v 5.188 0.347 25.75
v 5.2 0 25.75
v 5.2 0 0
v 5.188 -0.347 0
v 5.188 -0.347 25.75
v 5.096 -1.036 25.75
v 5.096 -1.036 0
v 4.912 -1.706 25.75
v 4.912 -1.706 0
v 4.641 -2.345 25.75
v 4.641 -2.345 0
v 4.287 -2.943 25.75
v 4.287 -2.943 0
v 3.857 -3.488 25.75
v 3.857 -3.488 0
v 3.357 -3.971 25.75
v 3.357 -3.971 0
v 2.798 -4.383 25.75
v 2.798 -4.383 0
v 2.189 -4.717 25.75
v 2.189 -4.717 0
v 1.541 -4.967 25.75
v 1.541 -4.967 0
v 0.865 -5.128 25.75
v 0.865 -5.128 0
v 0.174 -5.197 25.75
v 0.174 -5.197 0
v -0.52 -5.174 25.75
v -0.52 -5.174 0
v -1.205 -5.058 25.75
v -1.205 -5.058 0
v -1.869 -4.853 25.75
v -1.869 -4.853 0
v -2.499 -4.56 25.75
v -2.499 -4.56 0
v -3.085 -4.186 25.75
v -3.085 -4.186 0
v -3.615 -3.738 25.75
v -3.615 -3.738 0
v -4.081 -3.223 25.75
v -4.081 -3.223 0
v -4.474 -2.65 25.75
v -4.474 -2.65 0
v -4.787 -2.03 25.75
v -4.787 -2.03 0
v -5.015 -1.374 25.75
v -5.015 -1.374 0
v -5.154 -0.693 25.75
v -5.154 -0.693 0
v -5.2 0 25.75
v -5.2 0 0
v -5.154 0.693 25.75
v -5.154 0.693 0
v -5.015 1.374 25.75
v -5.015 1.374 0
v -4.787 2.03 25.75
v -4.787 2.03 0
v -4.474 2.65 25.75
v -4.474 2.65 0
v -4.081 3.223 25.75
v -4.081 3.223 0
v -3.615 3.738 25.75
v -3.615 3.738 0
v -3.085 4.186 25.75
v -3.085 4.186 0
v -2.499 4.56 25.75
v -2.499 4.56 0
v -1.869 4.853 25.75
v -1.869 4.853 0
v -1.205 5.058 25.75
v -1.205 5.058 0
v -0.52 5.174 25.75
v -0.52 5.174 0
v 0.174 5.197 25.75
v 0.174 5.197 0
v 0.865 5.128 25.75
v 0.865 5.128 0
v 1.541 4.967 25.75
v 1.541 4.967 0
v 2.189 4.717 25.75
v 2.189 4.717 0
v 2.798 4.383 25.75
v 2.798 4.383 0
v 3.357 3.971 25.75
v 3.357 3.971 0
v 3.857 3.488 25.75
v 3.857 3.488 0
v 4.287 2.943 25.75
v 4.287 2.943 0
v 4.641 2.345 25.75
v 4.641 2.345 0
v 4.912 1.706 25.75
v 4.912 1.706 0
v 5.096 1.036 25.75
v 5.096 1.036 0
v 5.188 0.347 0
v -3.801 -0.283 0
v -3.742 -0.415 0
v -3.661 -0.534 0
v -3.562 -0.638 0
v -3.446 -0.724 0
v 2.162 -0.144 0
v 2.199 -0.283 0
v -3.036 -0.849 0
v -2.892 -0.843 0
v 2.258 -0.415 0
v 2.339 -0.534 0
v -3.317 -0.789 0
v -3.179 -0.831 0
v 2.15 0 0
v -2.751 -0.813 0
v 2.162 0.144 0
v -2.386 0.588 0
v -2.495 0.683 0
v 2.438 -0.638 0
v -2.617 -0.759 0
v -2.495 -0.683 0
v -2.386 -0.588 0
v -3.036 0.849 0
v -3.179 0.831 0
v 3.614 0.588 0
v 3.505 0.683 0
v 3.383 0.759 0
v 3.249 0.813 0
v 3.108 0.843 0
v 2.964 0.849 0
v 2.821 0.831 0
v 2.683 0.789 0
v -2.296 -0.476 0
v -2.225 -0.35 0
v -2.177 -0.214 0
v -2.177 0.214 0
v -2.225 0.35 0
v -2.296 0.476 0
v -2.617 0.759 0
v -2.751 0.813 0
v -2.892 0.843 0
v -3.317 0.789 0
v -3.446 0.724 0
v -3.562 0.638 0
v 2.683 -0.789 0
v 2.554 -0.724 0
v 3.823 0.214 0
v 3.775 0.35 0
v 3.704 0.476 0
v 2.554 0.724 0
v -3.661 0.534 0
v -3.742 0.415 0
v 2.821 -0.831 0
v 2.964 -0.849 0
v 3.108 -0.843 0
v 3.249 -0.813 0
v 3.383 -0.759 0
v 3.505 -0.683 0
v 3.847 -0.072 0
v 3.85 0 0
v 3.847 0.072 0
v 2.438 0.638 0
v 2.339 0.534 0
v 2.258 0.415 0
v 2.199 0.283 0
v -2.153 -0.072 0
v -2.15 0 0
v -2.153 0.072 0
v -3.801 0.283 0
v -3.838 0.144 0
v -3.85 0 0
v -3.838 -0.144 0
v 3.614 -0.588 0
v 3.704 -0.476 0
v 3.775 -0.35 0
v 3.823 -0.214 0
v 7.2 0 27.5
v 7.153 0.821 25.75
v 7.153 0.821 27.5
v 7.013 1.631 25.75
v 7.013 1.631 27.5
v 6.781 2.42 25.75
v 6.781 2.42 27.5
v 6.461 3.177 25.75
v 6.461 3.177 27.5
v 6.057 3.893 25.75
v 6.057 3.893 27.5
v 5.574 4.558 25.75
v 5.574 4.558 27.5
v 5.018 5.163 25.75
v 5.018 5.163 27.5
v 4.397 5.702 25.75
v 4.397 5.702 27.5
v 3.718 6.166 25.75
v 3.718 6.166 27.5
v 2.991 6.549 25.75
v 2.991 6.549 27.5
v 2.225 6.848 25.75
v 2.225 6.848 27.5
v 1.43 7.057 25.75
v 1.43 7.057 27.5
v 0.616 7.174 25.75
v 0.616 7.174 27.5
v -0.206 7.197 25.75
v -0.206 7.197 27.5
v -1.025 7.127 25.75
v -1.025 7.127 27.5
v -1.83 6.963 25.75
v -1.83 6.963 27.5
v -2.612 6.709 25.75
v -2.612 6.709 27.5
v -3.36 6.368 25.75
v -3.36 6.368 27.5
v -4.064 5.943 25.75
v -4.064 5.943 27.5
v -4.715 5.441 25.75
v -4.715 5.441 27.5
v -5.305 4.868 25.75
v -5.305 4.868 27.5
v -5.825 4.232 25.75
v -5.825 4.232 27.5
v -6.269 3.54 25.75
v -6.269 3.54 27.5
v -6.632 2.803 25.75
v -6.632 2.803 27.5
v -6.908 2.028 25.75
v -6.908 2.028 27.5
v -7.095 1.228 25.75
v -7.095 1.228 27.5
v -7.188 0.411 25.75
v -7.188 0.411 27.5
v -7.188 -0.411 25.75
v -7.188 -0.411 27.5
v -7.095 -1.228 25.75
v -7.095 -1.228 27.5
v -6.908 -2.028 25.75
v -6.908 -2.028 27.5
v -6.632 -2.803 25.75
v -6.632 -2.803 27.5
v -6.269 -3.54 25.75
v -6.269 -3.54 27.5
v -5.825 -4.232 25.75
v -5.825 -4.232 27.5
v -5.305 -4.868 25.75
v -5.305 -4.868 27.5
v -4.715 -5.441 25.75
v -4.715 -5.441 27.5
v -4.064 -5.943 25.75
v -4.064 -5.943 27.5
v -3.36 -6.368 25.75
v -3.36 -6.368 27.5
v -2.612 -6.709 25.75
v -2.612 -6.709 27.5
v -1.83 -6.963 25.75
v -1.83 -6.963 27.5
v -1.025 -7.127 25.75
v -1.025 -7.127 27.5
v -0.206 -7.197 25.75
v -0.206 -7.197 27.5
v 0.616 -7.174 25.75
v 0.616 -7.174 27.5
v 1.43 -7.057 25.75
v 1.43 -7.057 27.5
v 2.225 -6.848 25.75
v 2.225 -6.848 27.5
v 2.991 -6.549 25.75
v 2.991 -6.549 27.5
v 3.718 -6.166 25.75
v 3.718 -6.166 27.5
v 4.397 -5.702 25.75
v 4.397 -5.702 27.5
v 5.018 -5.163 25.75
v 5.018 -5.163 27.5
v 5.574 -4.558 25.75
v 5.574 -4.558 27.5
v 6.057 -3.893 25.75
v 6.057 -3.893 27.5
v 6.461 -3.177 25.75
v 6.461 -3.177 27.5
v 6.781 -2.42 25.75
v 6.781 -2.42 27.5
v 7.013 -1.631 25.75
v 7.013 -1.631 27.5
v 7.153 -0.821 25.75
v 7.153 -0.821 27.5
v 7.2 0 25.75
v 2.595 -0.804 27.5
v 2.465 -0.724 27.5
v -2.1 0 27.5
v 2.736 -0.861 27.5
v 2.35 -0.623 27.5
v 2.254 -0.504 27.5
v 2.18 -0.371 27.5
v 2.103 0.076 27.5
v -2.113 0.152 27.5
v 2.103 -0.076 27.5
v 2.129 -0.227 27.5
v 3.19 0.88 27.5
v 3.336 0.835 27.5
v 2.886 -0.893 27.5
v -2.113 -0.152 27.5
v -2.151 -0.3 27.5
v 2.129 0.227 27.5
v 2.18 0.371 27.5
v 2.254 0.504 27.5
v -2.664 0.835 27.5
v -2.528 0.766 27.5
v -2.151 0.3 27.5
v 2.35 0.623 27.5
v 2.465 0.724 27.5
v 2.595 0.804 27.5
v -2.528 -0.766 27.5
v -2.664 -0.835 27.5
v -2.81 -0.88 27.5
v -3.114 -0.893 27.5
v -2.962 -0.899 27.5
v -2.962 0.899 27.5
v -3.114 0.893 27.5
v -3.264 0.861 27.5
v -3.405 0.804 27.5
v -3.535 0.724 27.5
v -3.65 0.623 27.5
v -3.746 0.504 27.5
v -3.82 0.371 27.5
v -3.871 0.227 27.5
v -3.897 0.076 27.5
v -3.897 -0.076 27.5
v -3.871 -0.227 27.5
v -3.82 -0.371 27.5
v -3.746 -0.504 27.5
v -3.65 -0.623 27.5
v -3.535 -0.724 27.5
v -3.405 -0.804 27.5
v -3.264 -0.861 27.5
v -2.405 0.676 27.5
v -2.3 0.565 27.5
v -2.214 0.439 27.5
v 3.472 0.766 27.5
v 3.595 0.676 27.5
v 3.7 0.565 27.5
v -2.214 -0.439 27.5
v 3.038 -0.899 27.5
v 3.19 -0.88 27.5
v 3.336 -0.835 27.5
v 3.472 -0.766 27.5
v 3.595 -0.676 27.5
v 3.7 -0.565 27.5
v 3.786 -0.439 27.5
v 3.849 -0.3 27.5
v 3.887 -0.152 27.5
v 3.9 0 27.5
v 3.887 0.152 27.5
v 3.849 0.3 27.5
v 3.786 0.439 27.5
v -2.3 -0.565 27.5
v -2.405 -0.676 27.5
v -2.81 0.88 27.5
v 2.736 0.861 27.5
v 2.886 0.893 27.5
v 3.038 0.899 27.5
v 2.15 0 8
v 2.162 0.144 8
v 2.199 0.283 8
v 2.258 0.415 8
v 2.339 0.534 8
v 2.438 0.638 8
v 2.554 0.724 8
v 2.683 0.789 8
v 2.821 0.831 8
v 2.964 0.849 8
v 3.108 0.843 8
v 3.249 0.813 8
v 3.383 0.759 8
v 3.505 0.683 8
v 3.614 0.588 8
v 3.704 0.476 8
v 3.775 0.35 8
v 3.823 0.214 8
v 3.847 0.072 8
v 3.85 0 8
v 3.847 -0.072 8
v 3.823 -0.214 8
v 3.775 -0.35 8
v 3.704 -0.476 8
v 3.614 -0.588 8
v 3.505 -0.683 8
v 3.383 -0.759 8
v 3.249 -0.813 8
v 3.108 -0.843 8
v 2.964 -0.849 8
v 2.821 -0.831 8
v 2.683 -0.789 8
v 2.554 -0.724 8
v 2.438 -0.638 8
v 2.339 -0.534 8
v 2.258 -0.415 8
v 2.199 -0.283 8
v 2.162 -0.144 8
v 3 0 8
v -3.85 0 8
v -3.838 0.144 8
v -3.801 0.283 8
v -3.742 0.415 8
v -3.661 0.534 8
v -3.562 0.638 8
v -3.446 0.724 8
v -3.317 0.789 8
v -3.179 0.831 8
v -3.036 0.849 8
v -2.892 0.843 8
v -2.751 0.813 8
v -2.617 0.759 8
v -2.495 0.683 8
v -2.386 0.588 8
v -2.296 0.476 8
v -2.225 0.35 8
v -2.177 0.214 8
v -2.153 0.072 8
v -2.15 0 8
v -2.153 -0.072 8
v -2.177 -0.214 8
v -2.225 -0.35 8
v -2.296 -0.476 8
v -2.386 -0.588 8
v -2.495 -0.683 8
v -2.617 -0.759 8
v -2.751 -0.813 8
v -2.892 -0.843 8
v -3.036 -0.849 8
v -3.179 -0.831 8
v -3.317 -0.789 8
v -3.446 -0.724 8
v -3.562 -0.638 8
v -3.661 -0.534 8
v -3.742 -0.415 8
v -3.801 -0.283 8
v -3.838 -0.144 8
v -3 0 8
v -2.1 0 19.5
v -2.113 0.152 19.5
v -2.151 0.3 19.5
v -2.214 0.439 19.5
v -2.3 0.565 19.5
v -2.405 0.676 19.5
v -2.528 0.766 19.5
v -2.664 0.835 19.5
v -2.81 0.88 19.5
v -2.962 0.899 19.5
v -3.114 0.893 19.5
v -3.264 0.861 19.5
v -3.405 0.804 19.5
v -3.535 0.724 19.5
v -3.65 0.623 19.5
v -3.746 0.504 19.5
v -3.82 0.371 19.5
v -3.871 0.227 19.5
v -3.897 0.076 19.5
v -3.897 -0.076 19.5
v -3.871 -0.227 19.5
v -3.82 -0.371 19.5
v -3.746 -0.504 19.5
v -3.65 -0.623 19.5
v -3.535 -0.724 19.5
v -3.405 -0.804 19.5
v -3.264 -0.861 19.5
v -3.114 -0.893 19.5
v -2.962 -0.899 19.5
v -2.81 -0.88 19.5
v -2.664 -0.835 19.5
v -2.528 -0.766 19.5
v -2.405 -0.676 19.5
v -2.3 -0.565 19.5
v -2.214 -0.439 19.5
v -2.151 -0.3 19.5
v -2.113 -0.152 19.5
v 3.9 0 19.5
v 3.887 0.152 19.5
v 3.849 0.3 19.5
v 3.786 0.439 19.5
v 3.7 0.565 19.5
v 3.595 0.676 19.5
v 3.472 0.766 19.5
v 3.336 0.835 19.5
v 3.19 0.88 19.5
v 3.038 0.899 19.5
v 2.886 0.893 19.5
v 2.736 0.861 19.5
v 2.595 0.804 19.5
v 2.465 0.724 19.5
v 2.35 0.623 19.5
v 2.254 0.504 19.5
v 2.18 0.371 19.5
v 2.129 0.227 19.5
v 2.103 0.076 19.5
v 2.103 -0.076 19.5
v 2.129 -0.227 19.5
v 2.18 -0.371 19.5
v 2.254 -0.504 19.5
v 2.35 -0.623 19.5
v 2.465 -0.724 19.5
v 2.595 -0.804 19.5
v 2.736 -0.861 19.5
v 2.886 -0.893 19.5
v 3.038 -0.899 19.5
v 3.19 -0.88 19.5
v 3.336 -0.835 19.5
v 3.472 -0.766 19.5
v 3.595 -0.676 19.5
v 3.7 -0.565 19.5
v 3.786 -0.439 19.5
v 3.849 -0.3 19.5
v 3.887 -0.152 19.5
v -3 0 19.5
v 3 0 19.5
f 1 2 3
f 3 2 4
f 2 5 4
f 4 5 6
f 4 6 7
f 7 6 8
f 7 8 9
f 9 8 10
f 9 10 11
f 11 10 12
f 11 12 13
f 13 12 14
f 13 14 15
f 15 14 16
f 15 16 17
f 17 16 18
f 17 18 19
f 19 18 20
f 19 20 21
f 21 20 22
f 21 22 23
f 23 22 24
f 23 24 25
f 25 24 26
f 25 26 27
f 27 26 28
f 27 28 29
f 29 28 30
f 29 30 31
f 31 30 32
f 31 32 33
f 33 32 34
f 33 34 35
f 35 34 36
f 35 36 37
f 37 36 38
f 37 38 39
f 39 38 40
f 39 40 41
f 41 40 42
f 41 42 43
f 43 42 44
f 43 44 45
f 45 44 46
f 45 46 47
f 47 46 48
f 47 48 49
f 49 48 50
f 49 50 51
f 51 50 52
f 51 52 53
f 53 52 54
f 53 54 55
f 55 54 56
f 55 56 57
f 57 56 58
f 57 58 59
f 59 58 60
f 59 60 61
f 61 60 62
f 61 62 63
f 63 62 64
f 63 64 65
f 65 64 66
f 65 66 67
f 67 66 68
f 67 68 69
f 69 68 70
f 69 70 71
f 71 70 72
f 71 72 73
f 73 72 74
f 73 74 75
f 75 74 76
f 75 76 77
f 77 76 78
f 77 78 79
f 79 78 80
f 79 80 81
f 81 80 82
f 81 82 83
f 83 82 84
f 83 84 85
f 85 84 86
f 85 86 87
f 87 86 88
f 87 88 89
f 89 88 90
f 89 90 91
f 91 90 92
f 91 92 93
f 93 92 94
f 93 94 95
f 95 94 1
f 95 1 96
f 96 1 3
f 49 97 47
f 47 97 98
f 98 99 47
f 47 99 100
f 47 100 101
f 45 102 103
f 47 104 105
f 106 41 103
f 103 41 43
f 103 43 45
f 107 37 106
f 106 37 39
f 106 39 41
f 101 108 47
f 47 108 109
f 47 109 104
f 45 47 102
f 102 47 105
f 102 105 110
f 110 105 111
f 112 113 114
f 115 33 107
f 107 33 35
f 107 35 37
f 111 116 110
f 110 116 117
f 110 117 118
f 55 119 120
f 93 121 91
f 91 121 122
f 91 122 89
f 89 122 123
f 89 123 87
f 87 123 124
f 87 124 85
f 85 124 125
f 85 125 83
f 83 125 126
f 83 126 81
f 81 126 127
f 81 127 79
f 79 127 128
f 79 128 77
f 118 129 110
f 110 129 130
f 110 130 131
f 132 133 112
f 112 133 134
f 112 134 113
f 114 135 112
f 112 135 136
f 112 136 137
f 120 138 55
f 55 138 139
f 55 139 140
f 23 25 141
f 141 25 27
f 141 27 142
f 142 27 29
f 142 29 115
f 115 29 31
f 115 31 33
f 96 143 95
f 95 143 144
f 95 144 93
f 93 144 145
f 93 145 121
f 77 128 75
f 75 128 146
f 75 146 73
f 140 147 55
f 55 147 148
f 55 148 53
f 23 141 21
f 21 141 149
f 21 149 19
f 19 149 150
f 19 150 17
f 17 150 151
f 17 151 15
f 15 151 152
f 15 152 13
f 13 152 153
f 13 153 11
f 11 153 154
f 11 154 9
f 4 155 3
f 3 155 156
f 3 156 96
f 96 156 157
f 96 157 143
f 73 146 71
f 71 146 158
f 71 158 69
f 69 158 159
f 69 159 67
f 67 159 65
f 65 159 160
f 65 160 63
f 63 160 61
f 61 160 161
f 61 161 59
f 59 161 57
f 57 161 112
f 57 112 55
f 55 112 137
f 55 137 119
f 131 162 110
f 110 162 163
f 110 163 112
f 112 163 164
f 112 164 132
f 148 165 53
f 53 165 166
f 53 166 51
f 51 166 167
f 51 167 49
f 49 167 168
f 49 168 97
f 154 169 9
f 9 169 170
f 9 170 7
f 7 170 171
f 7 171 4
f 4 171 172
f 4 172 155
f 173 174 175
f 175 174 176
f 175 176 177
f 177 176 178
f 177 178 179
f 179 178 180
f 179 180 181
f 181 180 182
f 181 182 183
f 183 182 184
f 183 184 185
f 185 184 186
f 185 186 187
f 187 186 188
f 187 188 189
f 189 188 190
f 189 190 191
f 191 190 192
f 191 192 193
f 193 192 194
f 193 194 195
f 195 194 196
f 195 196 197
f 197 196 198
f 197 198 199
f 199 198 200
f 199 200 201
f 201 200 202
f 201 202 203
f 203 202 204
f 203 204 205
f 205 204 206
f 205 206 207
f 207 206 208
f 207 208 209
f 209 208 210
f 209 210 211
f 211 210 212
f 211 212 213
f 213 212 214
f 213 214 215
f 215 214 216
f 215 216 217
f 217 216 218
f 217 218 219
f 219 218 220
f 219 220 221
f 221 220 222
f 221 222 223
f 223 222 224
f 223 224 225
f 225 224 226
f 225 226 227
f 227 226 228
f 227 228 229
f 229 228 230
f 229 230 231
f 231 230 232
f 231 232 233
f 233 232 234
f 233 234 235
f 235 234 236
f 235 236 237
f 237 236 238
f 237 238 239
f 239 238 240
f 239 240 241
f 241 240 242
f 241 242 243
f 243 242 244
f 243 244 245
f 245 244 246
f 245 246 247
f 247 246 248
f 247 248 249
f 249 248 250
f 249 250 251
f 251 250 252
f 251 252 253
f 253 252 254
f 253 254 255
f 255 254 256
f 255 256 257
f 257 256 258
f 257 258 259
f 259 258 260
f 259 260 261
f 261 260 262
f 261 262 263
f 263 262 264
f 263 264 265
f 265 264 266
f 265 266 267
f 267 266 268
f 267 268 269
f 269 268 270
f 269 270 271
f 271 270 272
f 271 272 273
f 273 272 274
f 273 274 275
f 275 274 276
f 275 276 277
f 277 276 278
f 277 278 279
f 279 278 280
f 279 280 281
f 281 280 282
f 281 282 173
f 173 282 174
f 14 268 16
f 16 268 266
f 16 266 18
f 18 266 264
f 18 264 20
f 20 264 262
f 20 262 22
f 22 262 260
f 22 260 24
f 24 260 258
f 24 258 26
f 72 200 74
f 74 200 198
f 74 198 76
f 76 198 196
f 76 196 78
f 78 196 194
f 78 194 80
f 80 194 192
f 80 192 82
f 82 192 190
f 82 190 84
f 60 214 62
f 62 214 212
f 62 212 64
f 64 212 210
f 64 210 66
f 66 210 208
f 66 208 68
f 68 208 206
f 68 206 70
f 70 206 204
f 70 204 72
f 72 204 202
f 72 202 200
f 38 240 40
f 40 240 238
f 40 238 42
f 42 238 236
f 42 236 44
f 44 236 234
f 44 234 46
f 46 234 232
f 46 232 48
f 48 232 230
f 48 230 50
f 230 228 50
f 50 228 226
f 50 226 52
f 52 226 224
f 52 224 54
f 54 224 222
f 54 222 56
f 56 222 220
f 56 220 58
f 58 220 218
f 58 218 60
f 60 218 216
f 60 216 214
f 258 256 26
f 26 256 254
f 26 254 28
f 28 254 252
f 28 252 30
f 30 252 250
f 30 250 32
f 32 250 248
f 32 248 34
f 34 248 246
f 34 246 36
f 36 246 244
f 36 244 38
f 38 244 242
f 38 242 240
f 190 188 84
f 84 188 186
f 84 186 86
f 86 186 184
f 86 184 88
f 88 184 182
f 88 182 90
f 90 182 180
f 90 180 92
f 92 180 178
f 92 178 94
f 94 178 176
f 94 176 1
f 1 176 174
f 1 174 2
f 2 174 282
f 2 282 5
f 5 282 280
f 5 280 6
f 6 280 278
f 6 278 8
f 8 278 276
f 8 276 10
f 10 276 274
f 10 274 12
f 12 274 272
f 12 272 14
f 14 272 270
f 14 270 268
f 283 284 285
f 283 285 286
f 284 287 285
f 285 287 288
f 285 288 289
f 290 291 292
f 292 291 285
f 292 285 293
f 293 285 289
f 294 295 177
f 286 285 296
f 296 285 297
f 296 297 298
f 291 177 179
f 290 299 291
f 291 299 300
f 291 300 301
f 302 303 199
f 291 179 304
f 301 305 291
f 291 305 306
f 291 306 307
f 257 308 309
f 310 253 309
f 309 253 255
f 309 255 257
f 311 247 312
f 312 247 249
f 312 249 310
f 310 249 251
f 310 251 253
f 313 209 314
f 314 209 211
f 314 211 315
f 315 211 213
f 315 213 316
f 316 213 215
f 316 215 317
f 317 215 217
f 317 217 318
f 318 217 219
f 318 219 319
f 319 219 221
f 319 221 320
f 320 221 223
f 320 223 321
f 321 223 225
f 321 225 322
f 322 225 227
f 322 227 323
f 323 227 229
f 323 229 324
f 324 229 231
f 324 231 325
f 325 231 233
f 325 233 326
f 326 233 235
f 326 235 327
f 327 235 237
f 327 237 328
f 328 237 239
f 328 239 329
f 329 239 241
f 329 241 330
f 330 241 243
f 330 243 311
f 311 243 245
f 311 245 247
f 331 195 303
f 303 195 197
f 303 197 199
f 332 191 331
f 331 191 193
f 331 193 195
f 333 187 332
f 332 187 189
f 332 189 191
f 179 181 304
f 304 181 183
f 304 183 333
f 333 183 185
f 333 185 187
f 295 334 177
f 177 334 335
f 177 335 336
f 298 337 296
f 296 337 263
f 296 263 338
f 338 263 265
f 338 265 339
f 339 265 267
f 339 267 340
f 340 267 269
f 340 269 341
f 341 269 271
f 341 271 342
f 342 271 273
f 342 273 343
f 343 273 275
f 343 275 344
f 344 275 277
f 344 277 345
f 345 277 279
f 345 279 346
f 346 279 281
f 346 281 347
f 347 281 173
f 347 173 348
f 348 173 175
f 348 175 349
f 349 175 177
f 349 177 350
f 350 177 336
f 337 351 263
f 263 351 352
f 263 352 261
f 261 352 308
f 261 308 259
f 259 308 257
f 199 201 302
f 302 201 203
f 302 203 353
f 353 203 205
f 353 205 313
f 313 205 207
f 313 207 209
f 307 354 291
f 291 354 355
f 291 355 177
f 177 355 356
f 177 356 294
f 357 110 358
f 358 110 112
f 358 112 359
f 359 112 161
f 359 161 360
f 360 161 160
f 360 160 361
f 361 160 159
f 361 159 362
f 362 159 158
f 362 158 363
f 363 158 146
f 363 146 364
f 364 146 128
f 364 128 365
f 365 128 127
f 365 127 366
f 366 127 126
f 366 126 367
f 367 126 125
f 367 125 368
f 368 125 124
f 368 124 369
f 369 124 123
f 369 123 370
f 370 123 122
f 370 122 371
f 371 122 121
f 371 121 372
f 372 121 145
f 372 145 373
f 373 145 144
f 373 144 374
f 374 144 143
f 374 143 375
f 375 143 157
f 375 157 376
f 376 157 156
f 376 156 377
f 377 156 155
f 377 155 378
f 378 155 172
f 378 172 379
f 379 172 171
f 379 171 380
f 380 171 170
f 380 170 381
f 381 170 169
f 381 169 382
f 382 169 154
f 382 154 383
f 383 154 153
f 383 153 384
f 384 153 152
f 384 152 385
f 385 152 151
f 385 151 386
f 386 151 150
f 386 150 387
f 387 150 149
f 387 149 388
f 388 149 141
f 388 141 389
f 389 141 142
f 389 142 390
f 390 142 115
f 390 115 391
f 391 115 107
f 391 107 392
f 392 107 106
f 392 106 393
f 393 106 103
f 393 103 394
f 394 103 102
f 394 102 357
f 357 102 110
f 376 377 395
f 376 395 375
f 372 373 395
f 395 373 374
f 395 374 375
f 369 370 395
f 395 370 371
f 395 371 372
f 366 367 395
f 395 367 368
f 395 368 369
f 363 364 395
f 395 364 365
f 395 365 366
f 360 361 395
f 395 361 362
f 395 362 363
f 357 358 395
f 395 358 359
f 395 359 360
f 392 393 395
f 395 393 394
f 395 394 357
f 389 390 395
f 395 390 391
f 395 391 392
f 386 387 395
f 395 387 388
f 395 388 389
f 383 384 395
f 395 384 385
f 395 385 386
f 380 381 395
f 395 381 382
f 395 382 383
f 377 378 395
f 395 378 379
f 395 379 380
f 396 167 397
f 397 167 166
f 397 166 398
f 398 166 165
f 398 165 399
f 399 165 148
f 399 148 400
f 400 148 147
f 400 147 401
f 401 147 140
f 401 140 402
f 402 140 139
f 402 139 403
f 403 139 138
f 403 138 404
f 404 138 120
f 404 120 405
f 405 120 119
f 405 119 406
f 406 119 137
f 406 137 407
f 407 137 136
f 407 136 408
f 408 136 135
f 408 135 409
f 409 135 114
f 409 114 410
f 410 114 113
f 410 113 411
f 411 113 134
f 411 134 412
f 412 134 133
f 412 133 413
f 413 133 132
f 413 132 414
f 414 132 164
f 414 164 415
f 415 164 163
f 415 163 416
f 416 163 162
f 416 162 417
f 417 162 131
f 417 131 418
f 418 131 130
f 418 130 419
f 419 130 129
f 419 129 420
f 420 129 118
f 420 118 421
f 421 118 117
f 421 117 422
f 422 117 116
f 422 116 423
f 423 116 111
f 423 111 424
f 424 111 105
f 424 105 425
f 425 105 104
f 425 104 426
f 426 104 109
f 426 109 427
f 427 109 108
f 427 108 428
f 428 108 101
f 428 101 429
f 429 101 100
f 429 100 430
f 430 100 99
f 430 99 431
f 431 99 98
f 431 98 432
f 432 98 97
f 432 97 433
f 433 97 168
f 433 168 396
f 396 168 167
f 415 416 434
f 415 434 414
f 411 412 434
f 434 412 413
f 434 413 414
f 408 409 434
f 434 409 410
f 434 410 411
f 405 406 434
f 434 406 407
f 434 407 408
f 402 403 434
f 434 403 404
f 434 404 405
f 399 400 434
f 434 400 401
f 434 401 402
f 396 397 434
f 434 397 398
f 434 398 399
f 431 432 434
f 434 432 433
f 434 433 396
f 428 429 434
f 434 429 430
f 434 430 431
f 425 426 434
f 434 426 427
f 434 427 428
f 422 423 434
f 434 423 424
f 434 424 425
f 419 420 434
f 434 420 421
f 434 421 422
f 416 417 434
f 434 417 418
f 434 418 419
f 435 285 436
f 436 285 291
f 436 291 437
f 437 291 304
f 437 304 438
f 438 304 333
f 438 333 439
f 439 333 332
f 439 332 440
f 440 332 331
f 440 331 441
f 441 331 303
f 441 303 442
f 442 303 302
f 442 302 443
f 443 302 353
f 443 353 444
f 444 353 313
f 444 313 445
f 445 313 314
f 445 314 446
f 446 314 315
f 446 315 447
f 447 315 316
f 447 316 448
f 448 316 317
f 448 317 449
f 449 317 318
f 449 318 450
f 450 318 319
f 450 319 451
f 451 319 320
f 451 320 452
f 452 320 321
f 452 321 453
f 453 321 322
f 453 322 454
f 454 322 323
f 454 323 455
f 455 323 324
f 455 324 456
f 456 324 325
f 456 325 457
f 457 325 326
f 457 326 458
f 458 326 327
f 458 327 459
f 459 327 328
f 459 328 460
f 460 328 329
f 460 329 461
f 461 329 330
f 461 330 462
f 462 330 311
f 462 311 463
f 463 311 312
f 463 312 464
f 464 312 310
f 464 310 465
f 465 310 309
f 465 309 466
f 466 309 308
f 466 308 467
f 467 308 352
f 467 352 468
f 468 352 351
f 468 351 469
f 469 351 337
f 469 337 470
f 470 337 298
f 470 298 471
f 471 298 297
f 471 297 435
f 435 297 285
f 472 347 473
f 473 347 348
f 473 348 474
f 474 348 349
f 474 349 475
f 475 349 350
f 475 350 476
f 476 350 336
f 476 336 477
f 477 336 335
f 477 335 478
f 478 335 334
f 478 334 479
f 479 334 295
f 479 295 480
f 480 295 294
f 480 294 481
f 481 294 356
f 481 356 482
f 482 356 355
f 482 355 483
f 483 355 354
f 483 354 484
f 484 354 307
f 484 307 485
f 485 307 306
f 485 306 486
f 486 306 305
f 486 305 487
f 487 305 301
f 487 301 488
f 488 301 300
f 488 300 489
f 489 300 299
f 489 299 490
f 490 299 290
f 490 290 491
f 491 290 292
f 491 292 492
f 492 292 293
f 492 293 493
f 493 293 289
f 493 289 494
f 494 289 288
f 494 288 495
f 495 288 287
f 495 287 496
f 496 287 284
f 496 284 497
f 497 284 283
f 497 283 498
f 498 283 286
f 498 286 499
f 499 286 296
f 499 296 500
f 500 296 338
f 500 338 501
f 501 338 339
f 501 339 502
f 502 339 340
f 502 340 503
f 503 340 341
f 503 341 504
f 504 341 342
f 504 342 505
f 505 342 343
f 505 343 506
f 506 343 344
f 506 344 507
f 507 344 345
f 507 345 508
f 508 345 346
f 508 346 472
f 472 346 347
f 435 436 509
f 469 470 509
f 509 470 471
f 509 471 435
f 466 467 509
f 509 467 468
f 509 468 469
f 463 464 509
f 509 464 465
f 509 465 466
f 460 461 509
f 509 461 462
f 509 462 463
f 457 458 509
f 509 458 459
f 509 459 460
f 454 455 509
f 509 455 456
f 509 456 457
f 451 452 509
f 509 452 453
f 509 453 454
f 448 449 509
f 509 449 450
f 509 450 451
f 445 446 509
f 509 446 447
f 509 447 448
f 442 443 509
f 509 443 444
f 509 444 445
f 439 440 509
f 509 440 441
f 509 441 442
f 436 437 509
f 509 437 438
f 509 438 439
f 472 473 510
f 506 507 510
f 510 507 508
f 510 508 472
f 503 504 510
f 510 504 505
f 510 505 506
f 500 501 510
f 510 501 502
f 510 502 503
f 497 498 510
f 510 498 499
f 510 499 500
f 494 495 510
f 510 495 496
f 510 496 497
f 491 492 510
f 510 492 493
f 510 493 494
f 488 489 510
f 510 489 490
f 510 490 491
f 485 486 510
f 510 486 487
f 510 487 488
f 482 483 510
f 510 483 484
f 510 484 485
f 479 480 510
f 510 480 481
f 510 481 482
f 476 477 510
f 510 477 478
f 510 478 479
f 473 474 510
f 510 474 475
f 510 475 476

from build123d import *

# Parameters (mm, degrees)
SKETCH_1_R          = 5.2
EXTRUDE_1_DEPTH     = 27.5
SKETCH_6_R          = 7.2
EXTRUDE_3_DEPTH     = 1.75
SKETCH_3_R          = 0.85
CUT_EXTRUDE_4_DEPTH = 8
SKETCH_7_R          = 0.9
CUT_EXTRUDE_5_DEPTH = 8


with BuildPart() as part:
    # 草图1 → 凸台-拉伸1 (new body)
    with BuildSketch(Plane.XY):
        Circle(SKETCH_1_R)
    extrude(amount=EXTRUDE_1_DEPTH)

    # 草图6 → 凸台-拉伸3 (add)
    with BuildSketch(Plane.XY.offset(27.5)):
        Circle(SKETCH_6_R)
    extrude(amount=-EXTRUDE_3_DEPTH)

    # 草图3 → 切除-拉伸4 (cut)
    with BuildSketch(Plane.XY.offset(27.5)):
        with Locations((-3, 0)):
            Circle(SKETCH_3_R)
        with Locations((3, 0)):
            Circle(SKETCH_3_R)
    cut_extrude_4 = extrude(amount=-CUT_EXTRUDE_4_DEPTH, mode=Mode.SUBTRACT)

    # 镜向3: 切除-拉伸4 across plane
    add(cut_extrude_4.mirror(Plane.XY.offset(13.75)), mode=Mode.SUBTRACT)

    # 草图7 → 切除-拉伸5 (cut)
    with BuildSketch(Plane.XY.offset(27.5)):
        with Locations((-3, 0)):
            Circle(SKETCH_7_R)
        with Locations((3, 0)):
            Circle(SKETCH_7_R)
    extrude(amount=-CUT_EXTRUDE_5_DEPTH, mode=Mode.SUBTRACT)


solid = part.part
